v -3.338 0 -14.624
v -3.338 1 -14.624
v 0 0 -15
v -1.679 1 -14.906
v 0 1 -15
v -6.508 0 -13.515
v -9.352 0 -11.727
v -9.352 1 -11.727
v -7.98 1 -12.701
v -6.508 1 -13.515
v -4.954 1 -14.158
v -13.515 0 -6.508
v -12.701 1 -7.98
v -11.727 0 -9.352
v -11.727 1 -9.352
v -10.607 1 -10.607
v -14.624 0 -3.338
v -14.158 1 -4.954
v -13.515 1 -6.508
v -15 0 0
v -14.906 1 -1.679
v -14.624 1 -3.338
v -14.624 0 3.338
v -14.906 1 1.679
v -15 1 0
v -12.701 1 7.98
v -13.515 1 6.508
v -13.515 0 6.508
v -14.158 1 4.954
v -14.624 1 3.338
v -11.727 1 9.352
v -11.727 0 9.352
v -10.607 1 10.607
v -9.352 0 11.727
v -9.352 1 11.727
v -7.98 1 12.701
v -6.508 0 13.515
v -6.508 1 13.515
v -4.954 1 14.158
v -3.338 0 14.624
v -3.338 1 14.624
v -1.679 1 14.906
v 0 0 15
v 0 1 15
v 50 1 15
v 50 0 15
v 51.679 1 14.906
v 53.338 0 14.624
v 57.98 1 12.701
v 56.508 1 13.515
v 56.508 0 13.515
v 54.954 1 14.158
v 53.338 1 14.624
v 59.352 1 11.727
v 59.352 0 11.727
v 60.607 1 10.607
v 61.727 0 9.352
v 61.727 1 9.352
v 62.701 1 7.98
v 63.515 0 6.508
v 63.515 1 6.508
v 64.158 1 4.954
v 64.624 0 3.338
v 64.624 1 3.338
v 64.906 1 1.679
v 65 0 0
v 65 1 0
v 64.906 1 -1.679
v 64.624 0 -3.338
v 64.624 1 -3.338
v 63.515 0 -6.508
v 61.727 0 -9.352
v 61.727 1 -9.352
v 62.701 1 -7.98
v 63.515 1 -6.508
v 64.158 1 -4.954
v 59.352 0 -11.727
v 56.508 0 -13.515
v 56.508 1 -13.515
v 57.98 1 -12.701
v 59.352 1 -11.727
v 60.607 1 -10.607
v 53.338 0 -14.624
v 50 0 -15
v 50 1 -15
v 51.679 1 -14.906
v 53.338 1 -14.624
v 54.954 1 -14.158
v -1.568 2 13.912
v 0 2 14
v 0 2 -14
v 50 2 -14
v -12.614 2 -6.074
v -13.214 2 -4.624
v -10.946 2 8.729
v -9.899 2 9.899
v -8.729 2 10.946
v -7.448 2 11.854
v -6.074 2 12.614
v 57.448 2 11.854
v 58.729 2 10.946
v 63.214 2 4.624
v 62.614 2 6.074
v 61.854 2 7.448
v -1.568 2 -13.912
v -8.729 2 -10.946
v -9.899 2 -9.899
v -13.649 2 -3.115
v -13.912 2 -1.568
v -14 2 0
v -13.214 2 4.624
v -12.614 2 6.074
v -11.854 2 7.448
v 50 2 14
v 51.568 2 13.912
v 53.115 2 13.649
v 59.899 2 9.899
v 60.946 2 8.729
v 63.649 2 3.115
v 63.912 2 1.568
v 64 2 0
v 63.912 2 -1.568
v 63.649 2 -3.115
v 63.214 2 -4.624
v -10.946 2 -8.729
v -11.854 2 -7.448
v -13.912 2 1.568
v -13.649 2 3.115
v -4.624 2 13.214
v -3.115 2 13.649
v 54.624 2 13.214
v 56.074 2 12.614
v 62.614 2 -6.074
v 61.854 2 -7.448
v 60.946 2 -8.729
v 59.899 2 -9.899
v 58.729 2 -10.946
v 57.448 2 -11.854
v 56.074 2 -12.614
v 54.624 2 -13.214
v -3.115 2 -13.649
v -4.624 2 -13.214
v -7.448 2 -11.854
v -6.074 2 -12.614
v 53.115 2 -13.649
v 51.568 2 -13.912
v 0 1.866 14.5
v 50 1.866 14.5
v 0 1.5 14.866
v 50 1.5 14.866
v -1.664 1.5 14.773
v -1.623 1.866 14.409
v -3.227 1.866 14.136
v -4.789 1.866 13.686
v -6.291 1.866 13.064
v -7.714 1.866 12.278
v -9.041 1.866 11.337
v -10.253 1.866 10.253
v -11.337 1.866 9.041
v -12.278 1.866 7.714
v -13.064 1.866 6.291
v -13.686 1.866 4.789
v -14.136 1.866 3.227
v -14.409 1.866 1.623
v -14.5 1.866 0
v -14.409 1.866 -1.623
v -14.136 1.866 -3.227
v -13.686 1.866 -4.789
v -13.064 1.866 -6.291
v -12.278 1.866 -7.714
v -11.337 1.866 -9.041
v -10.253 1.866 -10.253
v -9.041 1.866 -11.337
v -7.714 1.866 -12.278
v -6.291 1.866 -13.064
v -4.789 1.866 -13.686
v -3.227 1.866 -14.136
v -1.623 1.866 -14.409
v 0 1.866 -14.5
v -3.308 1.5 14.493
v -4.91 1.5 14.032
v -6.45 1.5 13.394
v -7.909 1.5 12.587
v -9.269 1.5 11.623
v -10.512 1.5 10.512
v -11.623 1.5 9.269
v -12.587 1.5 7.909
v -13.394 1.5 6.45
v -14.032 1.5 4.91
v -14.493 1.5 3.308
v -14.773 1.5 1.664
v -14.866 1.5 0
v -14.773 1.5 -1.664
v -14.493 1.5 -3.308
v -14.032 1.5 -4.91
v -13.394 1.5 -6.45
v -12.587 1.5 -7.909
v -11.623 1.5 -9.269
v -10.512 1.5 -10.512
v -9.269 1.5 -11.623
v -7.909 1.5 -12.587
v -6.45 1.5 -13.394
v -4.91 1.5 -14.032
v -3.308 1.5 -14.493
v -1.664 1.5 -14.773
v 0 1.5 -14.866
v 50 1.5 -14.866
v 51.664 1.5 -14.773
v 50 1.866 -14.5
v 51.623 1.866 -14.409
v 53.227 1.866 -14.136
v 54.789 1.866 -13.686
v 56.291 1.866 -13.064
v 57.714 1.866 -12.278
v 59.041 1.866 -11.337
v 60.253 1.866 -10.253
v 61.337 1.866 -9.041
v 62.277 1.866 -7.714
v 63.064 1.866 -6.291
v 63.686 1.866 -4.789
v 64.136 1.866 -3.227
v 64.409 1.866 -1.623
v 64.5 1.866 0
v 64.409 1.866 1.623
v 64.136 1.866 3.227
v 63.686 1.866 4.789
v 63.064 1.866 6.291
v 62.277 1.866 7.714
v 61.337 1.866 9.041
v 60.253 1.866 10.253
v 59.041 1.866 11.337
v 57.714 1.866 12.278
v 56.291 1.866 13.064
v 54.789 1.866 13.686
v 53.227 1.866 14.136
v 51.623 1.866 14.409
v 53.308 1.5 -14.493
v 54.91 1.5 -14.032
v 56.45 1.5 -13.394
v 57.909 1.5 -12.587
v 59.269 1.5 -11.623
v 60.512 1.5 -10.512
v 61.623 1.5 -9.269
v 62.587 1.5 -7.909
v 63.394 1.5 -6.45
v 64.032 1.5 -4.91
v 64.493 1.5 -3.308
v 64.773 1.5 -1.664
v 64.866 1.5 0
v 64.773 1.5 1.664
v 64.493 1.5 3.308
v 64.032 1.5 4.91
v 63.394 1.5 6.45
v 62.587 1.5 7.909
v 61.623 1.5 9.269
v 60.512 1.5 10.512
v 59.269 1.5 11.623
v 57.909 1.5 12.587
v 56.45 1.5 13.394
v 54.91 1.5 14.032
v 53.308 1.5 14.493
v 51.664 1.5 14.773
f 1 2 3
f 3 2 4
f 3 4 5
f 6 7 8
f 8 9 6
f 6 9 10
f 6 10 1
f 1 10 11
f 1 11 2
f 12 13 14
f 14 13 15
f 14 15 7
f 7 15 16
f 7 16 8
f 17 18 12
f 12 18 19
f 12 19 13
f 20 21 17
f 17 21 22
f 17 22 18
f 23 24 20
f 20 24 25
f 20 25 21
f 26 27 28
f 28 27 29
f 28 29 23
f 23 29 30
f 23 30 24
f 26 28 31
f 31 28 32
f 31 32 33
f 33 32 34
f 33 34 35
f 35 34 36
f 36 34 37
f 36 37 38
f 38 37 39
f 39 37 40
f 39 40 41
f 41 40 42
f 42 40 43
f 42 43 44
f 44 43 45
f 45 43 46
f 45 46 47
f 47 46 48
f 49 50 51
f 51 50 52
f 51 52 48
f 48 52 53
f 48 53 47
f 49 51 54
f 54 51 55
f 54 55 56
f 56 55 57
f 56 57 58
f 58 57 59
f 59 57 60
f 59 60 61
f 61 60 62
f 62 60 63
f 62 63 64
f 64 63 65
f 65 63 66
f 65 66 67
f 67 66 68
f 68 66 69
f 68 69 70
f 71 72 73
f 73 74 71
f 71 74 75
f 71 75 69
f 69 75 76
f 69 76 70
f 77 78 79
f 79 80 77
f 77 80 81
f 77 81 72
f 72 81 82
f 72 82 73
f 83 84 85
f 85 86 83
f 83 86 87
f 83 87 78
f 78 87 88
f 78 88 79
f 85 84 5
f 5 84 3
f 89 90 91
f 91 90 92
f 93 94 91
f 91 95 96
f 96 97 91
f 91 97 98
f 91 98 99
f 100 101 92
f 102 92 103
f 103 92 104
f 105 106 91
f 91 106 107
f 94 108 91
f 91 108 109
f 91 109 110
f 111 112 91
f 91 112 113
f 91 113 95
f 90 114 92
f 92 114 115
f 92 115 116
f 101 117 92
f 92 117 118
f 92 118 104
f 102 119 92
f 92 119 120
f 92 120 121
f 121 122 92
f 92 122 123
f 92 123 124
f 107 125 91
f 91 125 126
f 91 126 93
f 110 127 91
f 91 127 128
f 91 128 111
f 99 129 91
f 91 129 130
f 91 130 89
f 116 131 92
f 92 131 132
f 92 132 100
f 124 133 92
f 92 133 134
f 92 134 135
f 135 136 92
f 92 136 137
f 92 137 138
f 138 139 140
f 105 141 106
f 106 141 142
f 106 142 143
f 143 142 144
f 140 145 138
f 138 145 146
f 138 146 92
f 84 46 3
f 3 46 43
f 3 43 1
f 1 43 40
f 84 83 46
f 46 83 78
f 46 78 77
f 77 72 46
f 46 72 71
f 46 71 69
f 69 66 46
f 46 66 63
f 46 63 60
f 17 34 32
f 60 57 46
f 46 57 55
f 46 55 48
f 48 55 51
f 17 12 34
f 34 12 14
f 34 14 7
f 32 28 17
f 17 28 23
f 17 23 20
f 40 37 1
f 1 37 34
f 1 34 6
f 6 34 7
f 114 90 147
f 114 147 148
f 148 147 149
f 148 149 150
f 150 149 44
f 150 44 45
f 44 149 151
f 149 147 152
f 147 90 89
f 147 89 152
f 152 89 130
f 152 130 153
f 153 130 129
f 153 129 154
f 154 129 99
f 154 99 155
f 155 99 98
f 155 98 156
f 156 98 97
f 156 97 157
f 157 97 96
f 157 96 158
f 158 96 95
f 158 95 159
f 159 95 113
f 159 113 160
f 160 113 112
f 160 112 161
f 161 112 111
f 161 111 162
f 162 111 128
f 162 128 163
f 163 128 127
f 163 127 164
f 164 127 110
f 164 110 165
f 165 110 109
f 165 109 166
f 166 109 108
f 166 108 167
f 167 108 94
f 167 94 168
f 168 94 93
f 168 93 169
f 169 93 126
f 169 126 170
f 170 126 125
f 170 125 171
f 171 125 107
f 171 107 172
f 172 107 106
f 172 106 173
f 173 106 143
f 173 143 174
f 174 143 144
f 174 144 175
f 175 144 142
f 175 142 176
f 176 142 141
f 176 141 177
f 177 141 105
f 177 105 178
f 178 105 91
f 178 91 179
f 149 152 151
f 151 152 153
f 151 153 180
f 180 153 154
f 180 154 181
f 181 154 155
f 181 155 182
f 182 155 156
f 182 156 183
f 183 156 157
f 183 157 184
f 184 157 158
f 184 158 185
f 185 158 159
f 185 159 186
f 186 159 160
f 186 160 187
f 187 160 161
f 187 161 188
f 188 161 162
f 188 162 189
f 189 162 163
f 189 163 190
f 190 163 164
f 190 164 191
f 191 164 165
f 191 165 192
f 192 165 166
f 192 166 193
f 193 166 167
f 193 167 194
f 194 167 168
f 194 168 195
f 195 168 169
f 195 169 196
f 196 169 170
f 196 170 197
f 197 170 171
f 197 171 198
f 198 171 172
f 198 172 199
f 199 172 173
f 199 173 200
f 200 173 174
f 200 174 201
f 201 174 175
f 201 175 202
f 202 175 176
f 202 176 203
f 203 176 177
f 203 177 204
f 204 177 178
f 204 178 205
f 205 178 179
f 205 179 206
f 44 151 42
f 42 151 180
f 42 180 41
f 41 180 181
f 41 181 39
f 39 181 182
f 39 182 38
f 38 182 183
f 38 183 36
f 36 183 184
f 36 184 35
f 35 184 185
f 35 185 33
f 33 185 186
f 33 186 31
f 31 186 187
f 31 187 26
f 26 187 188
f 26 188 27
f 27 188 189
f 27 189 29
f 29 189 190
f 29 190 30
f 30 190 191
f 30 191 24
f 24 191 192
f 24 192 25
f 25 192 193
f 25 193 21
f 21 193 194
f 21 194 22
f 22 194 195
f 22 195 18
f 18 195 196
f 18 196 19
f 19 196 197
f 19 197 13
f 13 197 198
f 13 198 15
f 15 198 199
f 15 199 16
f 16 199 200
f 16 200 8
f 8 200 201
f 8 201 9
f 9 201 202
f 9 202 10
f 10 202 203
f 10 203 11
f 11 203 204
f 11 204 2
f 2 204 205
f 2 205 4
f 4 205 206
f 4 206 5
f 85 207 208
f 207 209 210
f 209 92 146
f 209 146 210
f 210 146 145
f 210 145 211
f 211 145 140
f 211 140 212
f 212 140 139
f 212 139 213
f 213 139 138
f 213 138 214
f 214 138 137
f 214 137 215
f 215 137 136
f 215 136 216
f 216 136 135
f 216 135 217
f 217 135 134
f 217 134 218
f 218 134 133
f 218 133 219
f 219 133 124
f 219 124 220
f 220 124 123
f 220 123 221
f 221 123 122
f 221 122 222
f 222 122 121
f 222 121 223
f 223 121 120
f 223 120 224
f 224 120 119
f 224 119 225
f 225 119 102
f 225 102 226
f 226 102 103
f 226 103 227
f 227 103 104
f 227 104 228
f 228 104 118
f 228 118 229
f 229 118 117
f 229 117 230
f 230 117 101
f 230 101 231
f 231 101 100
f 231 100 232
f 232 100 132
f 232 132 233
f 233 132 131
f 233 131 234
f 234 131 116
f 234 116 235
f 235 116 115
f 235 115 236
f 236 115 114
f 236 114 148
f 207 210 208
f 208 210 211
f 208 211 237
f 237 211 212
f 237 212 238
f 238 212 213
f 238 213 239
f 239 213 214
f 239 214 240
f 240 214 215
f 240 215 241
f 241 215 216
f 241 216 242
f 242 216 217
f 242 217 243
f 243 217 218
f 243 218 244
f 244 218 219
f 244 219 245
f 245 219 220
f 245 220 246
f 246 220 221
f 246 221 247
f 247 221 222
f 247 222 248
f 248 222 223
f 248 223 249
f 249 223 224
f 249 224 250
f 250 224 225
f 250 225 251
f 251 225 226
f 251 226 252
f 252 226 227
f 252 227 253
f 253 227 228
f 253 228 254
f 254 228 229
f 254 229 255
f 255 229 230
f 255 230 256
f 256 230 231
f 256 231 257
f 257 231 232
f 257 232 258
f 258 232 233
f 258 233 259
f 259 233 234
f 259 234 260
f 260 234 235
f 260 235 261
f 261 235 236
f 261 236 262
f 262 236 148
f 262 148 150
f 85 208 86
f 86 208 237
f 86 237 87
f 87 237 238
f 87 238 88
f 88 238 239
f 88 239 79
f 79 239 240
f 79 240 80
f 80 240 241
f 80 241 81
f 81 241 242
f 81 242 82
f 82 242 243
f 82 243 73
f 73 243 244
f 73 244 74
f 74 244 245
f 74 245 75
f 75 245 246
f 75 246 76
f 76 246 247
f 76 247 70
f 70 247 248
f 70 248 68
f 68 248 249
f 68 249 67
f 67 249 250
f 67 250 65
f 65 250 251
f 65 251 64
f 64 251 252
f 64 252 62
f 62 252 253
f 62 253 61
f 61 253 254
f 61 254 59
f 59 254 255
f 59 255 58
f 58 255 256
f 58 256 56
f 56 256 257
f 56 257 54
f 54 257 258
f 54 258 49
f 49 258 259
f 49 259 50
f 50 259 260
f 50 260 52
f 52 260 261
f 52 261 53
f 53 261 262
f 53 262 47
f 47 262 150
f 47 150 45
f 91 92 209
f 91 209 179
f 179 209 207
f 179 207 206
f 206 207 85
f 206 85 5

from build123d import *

# Parameters (mm, degrees)
BOSS_EXTRUDE1_DEPTH = 2
FILLET1_R           = 1


with BuildPart() as part:
    # Sketch1 → Boss-Extrude1 (new body)
    with BuildSketch(Plane(origin=(0, 0, 0), x_dir=(1, 0, 0), z_dir=(0, 1, 0))):
        with BuildLine():
            Line((0, 15), (50, 15))
            ThreePointArc((50, 15), (65, 0), (50, -15))
            Line((50, -15), (0, -15))
            ThreePointArc((0, -15), (-15, 0), (0, 15))
        make_face()
    extrude(amount=BOSS_EXTRUDE1_DEPTH)

    # Fillet1
    fillet1_edges = [part.edges().sort_by_distance(p)[0] for p in [
        (65, 2, 0),
        (25, 2, -15),
        (-15, 2, 0),
        (25, 2, 15),
    ]]
    fillet(fillet1_edges, radius=FILLET1_R)


solid = part.part
